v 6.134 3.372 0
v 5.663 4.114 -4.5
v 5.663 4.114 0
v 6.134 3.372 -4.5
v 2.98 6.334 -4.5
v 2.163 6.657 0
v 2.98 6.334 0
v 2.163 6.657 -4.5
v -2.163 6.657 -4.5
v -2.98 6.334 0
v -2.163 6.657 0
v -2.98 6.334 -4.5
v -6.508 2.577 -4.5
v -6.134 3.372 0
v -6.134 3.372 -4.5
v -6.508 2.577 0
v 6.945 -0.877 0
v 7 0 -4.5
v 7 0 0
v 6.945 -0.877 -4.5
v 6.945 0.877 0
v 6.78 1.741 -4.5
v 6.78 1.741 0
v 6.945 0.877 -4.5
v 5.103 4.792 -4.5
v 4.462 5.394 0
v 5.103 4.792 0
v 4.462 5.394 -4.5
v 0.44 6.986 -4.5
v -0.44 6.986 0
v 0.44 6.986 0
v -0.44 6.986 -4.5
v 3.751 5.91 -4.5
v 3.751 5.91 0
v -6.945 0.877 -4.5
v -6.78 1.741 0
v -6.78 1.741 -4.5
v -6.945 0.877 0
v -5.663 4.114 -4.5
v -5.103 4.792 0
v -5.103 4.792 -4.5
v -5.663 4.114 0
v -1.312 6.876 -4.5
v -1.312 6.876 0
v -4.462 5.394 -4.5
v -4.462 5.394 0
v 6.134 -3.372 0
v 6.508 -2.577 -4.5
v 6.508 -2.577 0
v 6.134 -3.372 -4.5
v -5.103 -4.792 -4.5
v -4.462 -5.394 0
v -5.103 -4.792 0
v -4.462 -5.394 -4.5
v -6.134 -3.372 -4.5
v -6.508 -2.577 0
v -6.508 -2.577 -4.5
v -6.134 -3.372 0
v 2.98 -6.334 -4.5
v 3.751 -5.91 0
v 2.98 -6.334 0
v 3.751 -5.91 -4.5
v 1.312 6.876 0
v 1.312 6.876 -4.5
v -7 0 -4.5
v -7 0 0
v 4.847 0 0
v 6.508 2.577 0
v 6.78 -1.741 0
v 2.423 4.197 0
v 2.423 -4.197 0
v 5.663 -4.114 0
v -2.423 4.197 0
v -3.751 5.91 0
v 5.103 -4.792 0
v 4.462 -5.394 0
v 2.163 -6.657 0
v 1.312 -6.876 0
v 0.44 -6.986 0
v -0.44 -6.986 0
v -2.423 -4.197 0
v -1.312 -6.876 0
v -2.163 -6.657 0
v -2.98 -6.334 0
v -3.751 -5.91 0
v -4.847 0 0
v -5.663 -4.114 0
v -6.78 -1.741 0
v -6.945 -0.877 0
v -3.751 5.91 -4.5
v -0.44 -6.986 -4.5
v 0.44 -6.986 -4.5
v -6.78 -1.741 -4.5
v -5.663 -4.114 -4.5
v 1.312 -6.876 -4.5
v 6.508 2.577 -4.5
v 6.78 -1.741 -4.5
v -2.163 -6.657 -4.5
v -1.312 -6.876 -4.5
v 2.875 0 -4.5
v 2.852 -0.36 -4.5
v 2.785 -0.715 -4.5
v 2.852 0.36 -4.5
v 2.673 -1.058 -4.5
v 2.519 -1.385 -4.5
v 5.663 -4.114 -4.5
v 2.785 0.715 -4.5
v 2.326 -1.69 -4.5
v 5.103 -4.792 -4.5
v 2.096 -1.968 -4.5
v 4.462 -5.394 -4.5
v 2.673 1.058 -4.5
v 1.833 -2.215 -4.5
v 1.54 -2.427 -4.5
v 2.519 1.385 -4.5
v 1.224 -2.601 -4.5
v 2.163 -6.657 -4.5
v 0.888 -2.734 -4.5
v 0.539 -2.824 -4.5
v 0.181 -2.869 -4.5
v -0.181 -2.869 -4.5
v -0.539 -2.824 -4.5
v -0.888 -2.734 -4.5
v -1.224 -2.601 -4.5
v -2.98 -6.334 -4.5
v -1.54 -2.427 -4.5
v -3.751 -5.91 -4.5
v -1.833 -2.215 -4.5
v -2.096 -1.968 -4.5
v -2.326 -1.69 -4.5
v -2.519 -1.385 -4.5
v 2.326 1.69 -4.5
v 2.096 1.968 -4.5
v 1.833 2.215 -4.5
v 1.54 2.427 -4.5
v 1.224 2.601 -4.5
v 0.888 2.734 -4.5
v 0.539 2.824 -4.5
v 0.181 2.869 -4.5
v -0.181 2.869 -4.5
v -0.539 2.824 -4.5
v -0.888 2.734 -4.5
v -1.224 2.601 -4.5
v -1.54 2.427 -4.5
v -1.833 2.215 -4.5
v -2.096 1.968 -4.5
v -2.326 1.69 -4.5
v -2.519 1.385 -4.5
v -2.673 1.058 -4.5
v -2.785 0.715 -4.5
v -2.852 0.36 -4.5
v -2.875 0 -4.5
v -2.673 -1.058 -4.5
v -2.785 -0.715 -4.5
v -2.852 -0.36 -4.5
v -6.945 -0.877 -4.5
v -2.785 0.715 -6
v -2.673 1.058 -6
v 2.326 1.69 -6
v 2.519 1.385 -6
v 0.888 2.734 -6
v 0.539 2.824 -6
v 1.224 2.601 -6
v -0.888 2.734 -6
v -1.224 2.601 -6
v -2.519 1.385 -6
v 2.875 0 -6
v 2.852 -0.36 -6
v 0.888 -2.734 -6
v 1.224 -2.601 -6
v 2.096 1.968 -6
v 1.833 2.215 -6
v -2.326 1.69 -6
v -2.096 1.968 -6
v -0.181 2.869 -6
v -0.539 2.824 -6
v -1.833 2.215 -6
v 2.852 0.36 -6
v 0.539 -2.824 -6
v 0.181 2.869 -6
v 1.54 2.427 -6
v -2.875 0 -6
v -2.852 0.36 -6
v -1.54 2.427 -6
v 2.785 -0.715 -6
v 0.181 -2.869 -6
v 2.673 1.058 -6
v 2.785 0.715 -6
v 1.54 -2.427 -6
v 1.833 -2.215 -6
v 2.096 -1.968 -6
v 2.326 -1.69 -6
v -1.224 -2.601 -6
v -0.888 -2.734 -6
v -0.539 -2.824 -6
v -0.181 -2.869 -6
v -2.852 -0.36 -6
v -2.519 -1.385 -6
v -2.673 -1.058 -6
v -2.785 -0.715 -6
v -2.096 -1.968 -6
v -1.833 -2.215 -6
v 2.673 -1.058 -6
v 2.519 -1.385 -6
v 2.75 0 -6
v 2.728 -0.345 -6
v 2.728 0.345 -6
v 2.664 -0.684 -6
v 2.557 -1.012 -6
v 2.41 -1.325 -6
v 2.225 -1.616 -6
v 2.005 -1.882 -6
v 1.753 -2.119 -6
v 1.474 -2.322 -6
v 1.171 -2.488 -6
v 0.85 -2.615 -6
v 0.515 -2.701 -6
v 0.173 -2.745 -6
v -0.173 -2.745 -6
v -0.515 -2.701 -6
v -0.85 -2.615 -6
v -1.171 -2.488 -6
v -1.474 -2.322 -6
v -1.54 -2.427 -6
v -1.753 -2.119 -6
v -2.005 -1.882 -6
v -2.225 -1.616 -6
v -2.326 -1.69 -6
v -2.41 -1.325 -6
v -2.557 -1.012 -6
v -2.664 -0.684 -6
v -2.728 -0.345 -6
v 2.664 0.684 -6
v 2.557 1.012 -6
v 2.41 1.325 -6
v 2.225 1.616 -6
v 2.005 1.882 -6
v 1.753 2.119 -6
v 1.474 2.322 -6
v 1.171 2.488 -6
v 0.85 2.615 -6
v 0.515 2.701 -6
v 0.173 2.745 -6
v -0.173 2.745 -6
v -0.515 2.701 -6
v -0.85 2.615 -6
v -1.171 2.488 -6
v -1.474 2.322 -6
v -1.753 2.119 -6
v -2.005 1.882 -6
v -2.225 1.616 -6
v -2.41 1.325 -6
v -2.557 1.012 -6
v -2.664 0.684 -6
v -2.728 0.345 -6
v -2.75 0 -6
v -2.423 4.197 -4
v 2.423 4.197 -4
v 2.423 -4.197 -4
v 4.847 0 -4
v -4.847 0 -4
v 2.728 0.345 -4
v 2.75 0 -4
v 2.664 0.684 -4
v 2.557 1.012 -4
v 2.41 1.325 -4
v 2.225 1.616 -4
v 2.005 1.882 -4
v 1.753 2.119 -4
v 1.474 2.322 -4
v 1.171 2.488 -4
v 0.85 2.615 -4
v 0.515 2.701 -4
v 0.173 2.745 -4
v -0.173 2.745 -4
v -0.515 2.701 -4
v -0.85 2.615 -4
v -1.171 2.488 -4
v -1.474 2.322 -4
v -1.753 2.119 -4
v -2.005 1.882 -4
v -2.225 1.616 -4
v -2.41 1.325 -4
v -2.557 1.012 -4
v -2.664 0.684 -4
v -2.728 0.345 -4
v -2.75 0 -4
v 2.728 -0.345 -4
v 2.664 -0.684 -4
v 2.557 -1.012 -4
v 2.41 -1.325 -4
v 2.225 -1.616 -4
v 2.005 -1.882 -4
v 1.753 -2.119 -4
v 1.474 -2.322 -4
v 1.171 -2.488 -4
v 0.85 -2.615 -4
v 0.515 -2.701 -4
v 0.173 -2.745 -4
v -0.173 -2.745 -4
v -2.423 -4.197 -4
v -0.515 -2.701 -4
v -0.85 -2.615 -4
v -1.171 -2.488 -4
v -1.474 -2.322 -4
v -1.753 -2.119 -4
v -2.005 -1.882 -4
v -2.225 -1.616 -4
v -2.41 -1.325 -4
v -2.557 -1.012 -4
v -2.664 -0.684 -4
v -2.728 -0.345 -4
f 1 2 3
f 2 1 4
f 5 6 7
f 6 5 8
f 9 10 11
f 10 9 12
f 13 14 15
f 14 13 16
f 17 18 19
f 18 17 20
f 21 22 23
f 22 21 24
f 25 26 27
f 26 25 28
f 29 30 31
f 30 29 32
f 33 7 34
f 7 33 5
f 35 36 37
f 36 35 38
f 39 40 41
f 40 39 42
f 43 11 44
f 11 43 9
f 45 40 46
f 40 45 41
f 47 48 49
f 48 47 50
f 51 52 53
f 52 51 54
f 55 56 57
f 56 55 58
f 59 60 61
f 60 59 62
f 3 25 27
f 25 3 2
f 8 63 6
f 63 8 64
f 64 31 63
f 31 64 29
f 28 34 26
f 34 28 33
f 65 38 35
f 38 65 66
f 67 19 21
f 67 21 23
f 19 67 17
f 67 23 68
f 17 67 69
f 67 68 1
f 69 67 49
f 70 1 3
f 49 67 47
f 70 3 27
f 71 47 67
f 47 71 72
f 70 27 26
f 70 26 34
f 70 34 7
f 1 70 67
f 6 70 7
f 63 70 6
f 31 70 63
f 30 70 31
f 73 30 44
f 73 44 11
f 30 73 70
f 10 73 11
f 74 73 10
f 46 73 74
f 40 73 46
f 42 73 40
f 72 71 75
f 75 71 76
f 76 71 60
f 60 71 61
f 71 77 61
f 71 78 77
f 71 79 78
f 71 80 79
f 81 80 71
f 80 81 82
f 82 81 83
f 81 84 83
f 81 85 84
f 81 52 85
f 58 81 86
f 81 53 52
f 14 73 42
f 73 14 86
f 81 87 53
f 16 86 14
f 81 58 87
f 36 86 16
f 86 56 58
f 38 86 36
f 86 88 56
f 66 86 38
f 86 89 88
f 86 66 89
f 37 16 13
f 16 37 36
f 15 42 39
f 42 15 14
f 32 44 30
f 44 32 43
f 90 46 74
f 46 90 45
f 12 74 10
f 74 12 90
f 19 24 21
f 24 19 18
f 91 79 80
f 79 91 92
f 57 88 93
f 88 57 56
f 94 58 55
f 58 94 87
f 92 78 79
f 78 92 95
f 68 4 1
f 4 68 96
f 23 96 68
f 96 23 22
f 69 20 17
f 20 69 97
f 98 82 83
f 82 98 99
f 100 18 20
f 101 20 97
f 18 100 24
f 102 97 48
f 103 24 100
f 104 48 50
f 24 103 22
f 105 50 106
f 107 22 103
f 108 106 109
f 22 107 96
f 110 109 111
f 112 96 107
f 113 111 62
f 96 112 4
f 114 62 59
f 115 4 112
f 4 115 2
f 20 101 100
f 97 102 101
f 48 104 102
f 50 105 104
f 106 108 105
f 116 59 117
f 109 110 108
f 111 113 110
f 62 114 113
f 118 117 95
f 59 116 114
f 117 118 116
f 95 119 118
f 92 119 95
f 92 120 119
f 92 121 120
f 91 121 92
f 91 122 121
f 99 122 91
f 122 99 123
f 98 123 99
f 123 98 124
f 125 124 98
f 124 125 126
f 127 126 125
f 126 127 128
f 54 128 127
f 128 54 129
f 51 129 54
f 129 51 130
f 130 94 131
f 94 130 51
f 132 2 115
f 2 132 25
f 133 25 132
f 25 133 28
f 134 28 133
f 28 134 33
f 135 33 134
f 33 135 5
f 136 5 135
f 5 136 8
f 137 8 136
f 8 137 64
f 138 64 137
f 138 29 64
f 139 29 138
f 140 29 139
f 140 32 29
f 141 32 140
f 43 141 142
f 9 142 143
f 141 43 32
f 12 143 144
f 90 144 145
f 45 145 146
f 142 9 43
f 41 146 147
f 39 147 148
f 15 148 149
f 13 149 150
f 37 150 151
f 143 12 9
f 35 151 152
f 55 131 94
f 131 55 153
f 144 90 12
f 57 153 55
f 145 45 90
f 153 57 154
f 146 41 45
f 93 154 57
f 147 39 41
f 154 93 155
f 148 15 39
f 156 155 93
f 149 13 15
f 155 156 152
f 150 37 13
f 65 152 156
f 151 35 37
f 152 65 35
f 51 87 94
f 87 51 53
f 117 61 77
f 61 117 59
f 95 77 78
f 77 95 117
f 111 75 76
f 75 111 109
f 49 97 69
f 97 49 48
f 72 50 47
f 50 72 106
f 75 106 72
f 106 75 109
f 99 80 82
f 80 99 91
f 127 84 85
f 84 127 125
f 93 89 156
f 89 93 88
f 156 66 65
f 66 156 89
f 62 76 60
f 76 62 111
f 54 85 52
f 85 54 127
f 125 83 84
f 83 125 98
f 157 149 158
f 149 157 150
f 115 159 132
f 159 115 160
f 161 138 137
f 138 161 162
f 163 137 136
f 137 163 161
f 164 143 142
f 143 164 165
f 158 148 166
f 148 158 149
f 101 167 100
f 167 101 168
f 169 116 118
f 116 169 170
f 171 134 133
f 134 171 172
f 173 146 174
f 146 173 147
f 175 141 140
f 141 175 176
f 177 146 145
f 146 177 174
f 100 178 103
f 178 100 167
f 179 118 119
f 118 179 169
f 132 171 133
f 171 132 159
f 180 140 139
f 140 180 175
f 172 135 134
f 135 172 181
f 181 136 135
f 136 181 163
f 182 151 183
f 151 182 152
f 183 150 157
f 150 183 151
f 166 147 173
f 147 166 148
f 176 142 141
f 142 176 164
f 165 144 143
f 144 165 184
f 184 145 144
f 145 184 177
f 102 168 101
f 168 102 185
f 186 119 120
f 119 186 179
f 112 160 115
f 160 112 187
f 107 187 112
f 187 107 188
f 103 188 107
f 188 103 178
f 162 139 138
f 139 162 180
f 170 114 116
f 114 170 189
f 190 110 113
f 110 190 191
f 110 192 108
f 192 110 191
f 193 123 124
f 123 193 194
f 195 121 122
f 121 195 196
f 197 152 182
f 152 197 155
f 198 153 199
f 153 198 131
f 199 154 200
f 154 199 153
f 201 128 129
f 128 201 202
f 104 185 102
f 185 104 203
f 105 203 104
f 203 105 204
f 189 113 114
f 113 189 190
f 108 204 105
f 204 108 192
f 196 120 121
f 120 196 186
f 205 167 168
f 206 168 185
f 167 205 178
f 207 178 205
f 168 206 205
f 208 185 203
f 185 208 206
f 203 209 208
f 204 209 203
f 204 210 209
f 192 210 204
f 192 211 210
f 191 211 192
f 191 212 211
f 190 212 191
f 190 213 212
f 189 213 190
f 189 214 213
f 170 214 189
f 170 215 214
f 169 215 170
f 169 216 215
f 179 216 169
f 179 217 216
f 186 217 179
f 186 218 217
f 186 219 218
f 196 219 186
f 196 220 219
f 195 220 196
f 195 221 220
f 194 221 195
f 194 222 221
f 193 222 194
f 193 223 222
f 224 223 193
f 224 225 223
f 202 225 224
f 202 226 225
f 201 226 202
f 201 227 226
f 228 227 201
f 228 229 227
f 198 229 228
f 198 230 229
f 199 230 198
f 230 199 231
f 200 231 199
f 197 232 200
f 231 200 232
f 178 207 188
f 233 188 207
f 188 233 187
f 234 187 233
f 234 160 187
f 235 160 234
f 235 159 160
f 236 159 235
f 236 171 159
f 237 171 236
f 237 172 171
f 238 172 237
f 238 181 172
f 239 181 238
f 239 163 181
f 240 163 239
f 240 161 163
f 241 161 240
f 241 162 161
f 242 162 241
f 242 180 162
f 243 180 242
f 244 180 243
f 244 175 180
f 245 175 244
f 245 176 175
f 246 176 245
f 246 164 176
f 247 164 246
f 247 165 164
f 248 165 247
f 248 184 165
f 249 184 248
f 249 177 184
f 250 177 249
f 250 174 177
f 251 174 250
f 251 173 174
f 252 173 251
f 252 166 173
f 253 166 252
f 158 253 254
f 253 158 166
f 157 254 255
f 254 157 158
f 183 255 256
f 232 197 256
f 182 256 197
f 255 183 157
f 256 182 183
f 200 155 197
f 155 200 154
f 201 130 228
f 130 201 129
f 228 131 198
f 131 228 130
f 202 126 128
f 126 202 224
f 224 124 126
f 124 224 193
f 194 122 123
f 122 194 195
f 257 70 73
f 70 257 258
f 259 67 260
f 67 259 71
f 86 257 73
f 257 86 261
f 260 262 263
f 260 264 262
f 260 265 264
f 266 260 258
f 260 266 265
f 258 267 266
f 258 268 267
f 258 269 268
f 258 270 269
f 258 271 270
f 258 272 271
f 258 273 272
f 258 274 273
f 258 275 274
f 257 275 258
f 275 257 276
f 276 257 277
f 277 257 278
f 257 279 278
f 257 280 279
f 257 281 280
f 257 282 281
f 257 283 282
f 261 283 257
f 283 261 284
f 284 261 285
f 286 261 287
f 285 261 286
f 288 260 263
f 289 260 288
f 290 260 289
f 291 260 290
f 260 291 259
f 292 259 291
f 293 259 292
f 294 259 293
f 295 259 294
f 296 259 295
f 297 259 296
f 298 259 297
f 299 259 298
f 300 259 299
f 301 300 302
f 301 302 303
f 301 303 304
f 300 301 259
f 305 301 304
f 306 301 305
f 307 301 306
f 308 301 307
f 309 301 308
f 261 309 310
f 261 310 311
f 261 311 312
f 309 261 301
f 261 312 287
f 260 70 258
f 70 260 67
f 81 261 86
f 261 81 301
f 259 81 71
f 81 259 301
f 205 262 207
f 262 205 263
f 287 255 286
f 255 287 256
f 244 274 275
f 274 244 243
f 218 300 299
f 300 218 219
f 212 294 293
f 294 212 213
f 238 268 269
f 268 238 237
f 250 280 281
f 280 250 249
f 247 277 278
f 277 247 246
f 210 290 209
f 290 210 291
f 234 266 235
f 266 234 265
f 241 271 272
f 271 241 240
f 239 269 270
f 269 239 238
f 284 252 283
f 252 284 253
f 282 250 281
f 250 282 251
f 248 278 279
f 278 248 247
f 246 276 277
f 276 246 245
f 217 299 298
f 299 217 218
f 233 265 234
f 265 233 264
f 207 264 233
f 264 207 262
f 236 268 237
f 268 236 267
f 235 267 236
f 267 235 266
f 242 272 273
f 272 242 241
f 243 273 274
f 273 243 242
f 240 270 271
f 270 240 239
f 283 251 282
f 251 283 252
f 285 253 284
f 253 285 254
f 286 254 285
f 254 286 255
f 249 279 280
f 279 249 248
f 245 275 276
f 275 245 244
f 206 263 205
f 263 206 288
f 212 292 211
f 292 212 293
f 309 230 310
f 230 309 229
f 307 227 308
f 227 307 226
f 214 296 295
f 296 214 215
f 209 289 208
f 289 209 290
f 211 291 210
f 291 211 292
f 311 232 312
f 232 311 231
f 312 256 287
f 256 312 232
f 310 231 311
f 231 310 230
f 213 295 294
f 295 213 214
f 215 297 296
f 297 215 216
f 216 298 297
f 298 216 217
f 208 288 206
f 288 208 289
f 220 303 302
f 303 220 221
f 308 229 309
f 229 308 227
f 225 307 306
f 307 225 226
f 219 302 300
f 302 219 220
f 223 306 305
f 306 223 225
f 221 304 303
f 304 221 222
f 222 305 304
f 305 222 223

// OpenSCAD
$fn = 50;

difference() {
	union() {
		translate(v = [0, 0, -4.5]) {
			cylinder(h = 4.5, r = 7.0);
		}
		#translate(v = [0, 0, -6.0]) {
			cylinder(h = 6, r = 2.875);
		}
	}
	union() {
		translate(v = [0, 0, 0]) {
			rotate(a = [0, 0, 0]) {
				difference() {
					union() {
						translate(v = [0, 0, -4]) {
							linear_extrude(height = 4) {
								polygon(points = [[4.8468, 0.0], [2.4234000000000004, 4.197451927062417], [-2.423399999999999, 4.197451927062417], [-4.8468, 5.935618106107392e-16], [-2.423400000000002, -4.197451927062416], [2.423399999999997, -4.197451927062419]]);
							}
						}
					}
					union();
				}
			}
		}
		#translate(v = [0, 0, -100.0]) {
			cylinder(h = 200, r = 2.75);
		}
	}
}
